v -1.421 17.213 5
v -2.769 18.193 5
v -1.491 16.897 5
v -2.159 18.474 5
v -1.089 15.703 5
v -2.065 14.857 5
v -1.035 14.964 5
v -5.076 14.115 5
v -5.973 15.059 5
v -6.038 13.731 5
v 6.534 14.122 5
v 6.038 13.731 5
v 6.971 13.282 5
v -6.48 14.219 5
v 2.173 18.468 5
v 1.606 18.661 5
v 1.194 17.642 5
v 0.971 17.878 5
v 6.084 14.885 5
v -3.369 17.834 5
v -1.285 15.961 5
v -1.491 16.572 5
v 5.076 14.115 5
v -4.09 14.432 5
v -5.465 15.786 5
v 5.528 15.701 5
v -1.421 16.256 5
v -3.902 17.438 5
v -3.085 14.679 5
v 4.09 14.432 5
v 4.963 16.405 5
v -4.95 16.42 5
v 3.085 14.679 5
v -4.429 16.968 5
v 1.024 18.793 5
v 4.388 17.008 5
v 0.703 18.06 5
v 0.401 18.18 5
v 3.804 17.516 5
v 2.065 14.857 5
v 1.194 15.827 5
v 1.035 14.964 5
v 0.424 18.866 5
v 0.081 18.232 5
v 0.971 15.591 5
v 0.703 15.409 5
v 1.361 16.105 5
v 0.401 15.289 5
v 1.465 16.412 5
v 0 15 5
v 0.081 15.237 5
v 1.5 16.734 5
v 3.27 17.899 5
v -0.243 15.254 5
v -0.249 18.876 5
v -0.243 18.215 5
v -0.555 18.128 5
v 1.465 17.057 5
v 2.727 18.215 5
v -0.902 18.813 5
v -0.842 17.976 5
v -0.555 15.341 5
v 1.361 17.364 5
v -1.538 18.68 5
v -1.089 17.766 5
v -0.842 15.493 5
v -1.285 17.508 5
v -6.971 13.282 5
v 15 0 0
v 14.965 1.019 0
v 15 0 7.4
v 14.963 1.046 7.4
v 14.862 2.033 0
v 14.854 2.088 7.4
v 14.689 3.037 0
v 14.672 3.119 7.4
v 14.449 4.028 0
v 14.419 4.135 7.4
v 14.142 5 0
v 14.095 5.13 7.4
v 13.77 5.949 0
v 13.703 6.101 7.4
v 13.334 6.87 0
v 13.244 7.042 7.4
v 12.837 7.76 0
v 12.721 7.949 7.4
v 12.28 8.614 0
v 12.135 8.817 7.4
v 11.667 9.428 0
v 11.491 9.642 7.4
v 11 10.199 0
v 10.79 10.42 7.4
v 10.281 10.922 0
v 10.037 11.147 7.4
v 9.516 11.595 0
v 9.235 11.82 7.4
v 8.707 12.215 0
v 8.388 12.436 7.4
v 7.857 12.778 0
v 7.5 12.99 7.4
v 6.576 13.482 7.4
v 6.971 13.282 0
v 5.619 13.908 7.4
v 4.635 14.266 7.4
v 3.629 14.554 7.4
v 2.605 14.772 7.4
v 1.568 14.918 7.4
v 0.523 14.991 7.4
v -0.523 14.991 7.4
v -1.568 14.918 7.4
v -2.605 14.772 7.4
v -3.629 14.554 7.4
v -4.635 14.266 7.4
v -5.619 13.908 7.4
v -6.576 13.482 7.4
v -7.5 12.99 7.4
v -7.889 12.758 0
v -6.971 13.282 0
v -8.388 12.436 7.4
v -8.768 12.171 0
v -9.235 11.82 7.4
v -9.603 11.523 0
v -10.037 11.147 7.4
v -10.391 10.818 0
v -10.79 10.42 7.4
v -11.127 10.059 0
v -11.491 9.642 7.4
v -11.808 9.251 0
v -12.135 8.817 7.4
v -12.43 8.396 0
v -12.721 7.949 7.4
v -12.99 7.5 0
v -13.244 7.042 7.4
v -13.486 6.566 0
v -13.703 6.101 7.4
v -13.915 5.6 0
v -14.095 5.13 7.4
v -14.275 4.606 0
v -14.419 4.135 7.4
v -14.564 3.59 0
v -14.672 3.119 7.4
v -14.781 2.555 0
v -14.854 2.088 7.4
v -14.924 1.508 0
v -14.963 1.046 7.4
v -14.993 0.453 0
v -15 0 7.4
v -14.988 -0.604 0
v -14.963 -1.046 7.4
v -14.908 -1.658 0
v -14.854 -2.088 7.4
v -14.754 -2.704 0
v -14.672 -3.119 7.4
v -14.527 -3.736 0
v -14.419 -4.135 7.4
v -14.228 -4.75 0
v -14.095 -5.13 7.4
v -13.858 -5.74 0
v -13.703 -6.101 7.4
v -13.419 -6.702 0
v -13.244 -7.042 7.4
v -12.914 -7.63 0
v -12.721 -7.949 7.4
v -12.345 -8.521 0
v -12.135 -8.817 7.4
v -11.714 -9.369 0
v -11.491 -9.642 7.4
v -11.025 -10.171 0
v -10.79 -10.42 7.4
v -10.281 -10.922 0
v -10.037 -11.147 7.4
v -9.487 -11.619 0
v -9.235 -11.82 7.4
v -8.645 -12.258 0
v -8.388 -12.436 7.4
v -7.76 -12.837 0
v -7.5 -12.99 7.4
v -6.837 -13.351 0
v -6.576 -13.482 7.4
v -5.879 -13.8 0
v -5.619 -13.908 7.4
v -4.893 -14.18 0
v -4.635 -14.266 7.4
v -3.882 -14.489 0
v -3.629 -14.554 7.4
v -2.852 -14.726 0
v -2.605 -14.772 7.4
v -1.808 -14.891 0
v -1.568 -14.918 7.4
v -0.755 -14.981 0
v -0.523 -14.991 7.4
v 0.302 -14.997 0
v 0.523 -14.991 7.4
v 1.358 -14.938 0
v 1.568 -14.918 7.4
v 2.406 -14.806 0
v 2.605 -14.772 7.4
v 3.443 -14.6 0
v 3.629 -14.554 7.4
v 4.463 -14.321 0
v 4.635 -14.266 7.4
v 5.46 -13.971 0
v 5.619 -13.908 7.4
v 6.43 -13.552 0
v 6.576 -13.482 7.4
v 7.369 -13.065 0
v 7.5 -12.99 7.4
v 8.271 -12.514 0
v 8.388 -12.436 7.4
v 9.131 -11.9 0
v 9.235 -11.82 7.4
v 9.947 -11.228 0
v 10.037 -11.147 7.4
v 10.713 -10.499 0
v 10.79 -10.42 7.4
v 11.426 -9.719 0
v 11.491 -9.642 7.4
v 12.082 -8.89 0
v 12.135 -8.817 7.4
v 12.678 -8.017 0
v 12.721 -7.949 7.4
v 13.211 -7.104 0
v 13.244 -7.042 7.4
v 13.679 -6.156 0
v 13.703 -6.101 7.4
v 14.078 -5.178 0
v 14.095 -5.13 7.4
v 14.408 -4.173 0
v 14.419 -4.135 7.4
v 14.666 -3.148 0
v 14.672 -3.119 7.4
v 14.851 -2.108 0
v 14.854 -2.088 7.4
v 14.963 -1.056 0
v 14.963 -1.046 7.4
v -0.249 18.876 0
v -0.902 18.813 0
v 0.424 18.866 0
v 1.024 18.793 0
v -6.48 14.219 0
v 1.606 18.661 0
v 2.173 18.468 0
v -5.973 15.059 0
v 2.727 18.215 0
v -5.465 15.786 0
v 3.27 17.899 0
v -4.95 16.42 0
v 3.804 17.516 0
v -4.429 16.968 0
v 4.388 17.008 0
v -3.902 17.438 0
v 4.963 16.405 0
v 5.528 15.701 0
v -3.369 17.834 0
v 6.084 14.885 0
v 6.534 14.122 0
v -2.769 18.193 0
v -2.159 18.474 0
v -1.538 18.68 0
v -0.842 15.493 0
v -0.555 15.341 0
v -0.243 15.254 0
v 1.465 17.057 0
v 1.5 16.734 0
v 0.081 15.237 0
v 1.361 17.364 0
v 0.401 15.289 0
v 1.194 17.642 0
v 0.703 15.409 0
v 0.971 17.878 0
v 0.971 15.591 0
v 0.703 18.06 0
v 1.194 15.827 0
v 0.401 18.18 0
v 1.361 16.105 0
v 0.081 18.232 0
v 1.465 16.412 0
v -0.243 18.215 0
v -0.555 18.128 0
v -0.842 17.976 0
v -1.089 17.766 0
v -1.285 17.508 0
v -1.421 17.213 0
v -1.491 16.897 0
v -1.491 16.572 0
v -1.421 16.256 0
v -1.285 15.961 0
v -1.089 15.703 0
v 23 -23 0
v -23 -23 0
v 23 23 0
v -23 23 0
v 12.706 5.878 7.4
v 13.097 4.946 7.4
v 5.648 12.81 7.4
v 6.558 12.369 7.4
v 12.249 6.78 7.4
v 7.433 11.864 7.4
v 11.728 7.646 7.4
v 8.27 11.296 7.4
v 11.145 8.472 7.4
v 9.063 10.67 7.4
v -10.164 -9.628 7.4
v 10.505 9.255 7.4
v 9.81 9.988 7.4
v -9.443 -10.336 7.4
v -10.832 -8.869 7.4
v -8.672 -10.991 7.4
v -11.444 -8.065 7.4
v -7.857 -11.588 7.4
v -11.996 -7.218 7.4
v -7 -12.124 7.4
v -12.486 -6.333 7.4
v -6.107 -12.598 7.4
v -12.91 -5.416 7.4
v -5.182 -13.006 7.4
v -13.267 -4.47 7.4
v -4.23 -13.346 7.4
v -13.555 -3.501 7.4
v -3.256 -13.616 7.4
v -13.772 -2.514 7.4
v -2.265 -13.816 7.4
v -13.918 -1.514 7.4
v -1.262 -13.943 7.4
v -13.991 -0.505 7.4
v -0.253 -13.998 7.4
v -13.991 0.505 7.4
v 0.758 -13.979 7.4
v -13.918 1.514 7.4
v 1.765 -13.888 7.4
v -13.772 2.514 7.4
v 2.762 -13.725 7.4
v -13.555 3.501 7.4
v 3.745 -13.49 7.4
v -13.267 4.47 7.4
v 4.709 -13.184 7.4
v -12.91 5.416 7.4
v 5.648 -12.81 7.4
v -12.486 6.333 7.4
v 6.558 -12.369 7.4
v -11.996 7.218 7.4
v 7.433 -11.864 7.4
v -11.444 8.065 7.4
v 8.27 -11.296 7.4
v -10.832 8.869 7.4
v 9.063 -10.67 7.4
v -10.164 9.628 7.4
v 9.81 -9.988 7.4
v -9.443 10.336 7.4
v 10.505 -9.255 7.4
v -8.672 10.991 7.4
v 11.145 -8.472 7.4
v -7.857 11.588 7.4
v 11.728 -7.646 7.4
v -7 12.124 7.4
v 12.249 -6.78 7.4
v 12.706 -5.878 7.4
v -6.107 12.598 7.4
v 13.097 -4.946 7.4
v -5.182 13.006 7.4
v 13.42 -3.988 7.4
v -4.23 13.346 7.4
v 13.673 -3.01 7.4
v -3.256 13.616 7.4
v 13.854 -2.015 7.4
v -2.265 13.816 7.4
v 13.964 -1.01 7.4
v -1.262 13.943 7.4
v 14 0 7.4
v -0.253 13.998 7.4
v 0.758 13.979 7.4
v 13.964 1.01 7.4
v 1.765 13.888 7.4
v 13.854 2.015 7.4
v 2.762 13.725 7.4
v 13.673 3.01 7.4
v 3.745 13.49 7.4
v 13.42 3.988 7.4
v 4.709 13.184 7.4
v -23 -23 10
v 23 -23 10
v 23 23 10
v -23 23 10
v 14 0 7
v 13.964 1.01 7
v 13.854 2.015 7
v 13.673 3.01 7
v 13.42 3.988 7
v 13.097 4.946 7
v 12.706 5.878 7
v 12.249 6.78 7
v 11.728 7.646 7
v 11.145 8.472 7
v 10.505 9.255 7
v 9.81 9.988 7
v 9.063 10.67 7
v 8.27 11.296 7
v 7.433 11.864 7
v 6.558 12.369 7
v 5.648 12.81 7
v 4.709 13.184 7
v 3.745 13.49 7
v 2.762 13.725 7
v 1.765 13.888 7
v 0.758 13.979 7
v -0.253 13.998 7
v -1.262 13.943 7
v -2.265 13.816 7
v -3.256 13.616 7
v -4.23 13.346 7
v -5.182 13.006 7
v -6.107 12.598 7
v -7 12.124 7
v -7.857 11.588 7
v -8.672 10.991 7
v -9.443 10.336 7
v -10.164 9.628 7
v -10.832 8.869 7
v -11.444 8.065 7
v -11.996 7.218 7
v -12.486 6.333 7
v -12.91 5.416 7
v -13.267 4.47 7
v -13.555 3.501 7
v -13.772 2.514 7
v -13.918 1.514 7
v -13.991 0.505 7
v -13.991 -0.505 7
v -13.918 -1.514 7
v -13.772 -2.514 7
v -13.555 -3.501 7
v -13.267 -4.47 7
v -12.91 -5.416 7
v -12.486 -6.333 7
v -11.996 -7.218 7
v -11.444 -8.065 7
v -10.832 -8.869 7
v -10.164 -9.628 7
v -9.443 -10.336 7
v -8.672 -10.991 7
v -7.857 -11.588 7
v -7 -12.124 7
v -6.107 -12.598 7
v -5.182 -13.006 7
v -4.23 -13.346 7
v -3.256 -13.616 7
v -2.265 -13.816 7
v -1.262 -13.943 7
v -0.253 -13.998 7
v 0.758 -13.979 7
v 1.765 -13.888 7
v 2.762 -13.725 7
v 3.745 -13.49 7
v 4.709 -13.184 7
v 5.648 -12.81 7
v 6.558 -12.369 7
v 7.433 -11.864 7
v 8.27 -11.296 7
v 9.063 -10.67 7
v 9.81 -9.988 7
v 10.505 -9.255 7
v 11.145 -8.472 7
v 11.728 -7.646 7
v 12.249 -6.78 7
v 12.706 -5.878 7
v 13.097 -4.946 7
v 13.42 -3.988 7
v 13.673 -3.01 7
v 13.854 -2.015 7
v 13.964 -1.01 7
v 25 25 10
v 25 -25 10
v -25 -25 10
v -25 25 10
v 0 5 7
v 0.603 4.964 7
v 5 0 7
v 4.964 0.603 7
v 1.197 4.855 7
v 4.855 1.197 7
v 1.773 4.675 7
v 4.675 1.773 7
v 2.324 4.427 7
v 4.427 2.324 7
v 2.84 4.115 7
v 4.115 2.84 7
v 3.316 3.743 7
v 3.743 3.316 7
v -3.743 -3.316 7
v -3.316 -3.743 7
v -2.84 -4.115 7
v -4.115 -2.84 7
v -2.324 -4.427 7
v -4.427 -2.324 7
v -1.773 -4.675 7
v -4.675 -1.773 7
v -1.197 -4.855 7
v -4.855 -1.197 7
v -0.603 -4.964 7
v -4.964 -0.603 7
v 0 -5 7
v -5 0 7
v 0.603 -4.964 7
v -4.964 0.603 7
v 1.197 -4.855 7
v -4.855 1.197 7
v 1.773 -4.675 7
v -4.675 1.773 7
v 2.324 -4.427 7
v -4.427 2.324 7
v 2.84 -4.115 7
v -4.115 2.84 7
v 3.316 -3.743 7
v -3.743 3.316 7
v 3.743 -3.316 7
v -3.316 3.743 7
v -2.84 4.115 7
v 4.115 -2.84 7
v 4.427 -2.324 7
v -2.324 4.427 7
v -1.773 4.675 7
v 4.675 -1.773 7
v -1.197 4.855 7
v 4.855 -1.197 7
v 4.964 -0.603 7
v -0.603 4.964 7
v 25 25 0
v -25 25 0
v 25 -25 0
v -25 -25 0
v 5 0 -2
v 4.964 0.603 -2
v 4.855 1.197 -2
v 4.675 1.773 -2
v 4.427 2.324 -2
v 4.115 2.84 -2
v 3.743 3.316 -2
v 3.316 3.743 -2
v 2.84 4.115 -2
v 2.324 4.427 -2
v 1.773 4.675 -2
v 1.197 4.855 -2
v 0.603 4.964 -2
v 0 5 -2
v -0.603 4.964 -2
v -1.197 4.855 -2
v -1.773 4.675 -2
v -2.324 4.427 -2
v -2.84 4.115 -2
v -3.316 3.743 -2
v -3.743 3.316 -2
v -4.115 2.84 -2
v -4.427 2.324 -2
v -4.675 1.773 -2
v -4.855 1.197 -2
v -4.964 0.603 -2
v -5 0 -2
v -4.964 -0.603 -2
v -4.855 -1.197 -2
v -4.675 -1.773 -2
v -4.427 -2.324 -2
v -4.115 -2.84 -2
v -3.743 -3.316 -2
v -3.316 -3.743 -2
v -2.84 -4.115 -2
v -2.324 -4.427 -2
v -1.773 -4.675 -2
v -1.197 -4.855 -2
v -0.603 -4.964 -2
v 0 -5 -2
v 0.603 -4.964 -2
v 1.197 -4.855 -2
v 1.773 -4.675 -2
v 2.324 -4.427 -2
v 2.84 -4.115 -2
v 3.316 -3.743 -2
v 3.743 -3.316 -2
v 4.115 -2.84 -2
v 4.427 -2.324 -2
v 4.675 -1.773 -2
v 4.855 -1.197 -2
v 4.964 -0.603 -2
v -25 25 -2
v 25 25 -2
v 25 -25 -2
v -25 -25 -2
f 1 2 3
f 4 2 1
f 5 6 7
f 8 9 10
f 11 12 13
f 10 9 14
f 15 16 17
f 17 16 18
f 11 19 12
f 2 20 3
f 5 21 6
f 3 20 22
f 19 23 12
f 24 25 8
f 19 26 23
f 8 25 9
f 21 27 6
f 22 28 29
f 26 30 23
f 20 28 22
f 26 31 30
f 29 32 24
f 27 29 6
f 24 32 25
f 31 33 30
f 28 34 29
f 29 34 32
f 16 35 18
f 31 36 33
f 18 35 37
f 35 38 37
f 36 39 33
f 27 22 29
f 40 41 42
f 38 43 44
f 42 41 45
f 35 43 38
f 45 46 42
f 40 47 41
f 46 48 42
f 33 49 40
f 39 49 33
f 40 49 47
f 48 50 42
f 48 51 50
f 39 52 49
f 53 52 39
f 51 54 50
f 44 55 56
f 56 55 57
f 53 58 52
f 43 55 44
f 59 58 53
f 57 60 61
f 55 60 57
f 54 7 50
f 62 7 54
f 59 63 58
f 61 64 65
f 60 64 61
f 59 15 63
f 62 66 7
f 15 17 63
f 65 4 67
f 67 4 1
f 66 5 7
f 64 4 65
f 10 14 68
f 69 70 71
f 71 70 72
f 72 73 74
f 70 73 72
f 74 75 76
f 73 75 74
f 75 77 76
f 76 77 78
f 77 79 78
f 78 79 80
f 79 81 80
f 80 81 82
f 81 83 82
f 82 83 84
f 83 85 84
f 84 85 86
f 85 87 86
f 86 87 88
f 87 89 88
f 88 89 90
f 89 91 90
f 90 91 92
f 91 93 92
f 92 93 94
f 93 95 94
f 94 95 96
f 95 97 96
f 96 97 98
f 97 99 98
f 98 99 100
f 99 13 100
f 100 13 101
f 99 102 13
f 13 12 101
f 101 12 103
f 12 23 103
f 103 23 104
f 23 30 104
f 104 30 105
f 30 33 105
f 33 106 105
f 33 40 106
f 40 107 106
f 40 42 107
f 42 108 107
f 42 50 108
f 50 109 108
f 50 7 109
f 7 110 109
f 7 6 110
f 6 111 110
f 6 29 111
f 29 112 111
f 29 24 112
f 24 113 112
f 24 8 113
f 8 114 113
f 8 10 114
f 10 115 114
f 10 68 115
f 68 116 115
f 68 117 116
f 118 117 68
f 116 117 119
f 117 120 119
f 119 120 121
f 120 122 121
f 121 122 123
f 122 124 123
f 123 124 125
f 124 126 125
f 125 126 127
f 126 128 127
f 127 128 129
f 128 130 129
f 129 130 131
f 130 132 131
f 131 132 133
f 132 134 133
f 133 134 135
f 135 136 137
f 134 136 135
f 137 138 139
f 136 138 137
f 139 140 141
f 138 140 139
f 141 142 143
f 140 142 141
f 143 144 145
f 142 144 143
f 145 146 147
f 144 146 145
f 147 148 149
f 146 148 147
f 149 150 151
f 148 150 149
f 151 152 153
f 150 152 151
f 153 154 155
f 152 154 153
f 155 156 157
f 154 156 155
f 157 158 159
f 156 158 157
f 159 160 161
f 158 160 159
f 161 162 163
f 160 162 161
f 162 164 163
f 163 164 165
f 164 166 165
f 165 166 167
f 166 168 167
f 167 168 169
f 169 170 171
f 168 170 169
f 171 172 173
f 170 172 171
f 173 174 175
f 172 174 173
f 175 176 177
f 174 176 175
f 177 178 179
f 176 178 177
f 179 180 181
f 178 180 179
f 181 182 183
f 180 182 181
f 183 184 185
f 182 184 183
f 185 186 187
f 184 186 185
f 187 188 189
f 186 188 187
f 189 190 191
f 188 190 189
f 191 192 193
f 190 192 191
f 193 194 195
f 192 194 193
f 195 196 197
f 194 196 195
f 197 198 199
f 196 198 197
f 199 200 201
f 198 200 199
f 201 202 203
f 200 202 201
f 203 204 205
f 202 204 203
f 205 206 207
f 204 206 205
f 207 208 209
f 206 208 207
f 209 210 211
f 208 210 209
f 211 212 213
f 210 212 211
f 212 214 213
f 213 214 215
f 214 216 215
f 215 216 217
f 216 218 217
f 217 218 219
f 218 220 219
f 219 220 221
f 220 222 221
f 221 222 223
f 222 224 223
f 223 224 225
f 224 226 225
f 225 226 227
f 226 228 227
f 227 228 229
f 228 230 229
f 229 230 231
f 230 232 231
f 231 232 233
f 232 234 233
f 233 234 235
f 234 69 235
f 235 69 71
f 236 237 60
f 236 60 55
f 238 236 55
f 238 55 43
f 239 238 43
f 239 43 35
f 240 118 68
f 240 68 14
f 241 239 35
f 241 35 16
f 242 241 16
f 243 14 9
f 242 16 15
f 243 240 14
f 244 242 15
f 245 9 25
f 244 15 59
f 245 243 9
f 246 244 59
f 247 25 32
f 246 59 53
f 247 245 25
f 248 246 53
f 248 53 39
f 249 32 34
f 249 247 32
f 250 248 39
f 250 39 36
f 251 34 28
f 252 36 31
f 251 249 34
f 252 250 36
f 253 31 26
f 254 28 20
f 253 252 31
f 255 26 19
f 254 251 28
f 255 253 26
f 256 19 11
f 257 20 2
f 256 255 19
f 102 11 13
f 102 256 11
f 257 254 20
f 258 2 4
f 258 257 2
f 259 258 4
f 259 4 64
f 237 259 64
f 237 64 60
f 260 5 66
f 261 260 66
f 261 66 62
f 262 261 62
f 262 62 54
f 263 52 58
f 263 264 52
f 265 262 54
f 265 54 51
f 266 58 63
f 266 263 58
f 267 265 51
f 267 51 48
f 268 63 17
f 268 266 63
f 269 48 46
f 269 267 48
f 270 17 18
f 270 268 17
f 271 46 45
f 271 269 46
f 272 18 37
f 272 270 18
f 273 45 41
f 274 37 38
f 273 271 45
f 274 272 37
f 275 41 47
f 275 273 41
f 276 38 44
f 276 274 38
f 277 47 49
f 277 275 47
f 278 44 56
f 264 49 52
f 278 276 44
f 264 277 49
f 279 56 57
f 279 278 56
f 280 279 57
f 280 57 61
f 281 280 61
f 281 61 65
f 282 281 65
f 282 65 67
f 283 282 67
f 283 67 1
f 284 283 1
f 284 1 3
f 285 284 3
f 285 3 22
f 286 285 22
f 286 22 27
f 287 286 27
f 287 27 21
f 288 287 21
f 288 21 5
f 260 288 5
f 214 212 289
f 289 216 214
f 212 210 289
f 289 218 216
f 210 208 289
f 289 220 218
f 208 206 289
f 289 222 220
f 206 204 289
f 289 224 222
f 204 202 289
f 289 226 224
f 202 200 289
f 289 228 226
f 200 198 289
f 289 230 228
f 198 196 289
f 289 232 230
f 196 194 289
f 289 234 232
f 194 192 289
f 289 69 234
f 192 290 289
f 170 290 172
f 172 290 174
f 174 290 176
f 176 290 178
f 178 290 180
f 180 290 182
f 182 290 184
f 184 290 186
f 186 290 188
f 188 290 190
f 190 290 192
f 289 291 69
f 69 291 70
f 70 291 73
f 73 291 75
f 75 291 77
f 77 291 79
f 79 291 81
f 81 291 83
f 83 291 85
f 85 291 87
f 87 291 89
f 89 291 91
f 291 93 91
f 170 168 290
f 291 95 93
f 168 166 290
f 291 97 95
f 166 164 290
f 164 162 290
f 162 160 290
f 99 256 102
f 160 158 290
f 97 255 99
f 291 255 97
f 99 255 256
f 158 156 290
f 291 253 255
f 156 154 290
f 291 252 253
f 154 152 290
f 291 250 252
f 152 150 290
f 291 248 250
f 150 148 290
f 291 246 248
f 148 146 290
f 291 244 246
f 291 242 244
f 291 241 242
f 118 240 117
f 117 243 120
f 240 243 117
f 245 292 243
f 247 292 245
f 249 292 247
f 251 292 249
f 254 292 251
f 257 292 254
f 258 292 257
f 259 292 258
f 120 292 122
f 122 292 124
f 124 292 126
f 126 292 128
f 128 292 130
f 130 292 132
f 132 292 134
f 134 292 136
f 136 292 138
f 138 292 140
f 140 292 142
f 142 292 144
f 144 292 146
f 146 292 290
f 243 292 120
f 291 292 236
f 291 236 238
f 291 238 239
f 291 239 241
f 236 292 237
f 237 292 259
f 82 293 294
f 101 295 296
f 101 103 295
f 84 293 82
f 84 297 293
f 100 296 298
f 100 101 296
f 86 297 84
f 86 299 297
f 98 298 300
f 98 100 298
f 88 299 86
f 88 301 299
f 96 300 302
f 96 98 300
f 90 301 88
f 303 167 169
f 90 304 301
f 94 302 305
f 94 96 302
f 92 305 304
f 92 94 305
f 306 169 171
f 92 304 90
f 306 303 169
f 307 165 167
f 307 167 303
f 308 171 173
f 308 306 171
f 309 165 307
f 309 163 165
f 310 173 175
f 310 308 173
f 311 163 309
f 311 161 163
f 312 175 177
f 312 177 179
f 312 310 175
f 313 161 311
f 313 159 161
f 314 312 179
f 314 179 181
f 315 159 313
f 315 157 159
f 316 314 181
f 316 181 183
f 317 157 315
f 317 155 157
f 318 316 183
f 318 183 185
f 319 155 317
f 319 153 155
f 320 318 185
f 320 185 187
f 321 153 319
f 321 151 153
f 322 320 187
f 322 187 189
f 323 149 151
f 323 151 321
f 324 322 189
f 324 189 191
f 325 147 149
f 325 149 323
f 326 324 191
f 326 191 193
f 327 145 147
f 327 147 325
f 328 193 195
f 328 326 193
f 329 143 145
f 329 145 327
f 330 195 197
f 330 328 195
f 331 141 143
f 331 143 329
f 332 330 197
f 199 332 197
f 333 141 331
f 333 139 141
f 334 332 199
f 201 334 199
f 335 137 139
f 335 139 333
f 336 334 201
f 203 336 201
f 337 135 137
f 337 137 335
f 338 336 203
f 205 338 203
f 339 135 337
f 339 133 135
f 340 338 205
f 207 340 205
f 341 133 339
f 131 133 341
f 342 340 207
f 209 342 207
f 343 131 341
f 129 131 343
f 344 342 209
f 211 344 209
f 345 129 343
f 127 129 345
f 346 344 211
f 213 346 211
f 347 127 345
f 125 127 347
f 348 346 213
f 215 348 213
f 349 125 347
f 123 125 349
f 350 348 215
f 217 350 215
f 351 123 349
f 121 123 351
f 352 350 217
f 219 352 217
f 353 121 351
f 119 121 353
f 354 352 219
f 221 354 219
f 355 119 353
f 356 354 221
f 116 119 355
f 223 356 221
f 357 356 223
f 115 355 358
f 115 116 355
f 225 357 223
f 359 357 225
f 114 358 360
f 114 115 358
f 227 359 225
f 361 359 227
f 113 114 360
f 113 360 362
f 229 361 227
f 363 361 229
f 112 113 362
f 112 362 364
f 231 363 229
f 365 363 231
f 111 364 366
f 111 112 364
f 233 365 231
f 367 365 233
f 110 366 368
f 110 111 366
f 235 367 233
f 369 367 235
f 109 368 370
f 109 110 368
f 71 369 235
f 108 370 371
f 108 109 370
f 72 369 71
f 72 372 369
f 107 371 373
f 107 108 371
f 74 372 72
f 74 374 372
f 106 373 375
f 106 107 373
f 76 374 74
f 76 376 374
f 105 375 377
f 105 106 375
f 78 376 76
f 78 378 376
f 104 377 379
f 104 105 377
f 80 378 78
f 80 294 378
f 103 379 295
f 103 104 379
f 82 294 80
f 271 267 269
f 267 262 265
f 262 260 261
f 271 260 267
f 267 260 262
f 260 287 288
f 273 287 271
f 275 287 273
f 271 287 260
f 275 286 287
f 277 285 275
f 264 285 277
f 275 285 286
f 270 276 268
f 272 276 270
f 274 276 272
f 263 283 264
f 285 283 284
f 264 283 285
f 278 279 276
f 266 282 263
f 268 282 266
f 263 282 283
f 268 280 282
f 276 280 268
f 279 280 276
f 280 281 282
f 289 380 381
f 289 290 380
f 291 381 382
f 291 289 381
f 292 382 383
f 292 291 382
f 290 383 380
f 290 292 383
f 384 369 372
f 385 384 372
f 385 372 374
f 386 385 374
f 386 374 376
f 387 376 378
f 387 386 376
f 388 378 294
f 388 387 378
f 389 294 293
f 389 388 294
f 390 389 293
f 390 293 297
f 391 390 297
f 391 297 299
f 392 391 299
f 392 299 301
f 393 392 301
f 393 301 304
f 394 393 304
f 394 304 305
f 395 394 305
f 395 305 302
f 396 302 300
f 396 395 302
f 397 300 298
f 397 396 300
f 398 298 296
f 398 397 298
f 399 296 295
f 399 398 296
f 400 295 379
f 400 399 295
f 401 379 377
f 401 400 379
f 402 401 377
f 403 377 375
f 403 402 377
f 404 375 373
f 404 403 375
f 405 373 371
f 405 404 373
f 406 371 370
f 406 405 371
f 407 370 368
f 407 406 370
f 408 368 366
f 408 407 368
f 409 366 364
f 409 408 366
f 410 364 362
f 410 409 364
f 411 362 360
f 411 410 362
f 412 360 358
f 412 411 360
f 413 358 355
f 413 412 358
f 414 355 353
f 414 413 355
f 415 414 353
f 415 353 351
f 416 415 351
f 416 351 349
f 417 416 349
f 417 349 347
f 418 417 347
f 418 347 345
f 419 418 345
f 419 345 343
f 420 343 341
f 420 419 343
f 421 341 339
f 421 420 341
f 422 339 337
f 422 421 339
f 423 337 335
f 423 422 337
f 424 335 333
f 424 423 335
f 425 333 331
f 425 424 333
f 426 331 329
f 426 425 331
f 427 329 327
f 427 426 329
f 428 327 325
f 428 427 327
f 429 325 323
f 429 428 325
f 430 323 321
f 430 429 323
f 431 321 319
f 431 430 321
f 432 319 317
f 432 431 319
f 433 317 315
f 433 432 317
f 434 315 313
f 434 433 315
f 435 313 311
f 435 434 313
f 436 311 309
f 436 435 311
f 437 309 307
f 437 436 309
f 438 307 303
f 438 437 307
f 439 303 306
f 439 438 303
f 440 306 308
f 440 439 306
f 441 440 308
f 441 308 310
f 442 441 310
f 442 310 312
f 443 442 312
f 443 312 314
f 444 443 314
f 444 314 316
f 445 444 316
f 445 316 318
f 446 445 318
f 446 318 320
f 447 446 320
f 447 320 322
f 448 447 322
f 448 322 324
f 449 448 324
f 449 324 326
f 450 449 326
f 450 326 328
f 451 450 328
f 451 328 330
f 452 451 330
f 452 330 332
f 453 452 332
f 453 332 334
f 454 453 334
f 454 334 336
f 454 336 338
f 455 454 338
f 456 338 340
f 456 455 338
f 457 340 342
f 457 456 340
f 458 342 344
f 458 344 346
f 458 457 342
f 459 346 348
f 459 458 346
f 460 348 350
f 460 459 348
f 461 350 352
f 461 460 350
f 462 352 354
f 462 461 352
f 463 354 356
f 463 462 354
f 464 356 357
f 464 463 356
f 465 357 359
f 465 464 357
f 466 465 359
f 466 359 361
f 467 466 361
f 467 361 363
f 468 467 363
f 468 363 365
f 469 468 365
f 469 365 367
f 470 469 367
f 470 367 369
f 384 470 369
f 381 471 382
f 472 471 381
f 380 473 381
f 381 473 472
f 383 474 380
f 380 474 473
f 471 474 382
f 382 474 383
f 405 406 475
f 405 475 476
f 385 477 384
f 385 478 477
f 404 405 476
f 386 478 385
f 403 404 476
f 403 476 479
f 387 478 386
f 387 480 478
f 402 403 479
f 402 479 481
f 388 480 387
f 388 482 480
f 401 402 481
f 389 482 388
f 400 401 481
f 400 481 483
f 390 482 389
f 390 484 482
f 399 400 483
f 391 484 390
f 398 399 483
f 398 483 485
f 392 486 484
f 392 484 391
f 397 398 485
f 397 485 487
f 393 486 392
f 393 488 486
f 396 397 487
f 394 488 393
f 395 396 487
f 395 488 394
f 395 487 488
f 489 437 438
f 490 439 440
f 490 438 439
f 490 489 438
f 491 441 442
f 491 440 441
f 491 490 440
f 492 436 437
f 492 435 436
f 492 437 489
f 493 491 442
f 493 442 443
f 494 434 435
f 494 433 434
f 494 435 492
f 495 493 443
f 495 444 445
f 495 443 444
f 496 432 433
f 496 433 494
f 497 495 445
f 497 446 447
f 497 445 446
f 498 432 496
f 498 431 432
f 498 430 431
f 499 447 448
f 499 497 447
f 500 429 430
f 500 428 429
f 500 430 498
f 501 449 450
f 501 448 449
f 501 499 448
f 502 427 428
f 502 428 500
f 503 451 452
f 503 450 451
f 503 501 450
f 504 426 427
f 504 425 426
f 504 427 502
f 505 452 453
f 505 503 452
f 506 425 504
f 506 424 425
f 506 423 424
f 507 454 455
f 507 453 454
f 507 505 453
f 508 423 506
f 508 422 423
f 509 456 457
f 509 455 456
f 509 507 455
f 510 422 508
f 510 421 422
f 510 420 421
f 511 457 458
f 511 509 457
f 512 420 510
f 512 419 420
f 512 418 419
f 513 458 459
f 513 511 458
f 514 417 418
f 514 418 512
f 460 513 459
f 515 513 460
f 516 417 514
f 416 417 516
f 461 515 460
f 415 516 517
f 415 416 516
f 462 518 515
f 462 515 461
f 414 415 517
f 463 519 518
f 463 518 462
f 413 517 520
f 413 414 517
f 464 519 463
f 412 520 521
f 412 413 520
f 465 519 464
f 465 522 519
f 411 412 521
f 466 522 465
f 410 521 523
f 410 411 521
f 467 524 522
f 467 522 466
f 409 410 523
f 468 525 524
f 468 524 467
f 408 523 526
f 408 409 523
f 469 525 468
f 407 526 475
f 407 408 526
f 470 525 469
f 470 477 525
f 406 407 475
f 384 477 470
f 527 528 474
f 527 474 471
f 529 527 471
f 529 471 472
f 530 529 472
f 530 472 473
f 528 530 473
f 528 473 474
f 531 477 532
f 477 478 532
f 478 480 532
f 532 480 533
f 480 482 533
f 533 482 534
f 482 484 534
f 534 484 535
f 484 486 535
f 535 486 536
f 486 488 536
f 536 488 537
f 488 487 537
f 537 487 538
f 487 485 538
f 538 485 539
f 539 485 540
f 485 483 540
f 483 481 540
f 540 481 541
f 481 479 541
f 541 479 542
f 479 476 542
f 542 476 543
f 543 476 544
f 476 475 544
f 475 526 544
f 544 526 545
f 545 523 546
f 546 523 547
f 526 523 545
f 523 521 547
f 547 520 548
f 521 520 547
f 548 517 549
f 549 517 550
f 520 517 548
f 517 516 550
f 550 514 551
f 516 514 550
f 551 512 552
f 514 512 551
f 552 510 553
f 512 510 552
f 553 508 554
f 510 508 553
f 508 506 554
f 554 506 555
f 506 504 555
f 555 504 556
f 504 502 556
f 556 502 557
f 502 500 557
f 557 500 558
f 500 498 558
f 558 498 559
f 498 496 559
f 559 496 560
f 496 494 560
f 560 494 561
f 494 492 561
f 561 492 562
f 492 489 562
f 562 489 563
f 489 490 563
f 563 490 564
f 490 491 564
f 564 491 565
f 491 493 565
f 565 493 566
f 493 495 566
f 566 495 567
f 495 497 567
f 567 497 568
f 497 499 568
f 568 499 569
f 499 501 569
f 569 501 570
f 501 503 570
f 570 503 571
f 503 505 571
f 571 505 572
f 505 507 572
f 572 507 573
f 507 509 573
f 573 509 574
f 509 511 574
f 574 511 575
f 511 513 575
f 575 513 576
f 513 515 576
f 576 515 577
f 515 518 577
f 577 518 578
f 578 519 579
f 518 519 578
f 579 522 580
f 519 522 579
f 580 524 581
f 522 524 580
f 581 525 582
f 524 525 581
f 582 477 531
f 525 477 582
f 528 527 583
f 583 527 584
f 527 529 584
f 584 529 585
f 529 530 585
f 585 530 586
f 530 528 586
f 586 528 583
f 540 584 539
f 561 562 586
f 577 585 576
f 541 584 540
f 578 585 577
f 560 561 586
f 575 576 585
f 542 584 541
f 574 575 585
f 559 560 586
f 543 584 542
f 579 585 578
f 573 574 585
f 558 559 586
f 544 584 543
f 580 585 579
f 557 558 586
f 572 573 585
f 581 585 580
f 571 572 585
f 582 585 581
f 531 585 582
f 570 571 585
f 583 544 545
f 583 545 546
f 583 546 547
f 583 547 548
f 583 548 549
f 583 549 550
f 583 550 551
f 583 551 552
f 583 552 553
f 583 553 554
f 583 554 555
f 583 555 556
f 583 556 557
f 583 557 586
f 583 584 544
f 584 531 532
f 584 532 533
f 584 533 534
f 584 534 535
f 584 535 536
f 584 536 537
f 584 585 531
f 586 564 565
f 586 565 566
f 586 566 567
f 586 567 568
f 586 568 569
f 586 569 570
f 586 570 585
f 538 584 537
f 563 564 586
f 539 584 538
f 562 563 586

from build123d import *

# Parameters (mm, degrees)
SKETCH_R          = 15
PAD_DEPTH         = 7
SKETCH001_R       = 1.5
PAD001_DEPTH      = 5
SKETCH002_R       = 15
SKETCH002_R_2     = 14
PAD002_DEPTH      = 7.4
SKETCH003_W       = 50
SKETCH003_H       = 50
PAD003_DEPTH      = 2
SKETCH004_W       = 50
SKETCH004_H       = 50
SKETCH004_W_2     = 46
SKETCH004_H_2     = 46
PAD004_DEPTH      = 10
SKETCH005_R       = 5
POCKET_DEPTH      = 2.001
POCKET_DEPTH_BACK = -10.001


with BuildPart() as part:
    # Sketch → Pad (new body)
    with BuildSketch(Plane.XY):
        Circle(SKETCH_R)
    extrude(amount=PAD_DEPTH)

    # Sketch001 → Pad001 (join)
    with BuildSketch(Plane.XY):
        with BuildLine():
            add(Edge.make_bspline(
                [(-6.970964, 13.281779), (-4.960107, 17.400153), (0, 20.361549), (4.960107, 17.400153), (6.970964, 13.281779)],
                knots=[0, 0, 0, 0, 0.5, 1, 1, 1, 1], degree=3))
            Line((6.970964, 13.281779), (-6.970964, 13.281779))
        make_face()
        with Locations((0, 16.734485)):
            Circle(SKETCH001_R, mode=Mode.SUBTRACT)
    extrude(amount=PAD001_DEPTH)

    # Sketch002 → Pad002 (join)
    with BuildSketch(Plane.XY):
        Circle(SKETCH002_R)
        Circle(SKETCH002_R_2, mode=Mode.SUBTRACT)
    extrude(amount=PAD002_DEPTH)

    # Sketch003 → Pad003 (join)
    with BuildSketch(Plane.XY):
        Rectangle(SKETCH003_W, SKETCH003_H)
    extrude(amount=-PAD003_DEPTH)

    # Sketch004 → Pad004 (join)
    with BuildSketch(Plane.XY):
        Rectangle(SKETCH004_W, SKETCH004_H)
        Rectangle(SKETCH004_W_2, SKETCH004_H_2, mode=Mode.SUBTRACT)
    extrude(amount=PAD004_DEPTH)

    # Sketch005 → Pocket (cut, two sides)
    with BuildSketch(Plane.XY) as pocket_sk:
        Circle(SKETCH005_R)
    extrude(amount=-POCKET_DEPTH, mode=Mode.SUBTRACT)
    extrude(pocket_sk.sketch, amount=-POCKET_DEPTH_BACK, mode=Mode.SUBTRACT)


solid = part.part
